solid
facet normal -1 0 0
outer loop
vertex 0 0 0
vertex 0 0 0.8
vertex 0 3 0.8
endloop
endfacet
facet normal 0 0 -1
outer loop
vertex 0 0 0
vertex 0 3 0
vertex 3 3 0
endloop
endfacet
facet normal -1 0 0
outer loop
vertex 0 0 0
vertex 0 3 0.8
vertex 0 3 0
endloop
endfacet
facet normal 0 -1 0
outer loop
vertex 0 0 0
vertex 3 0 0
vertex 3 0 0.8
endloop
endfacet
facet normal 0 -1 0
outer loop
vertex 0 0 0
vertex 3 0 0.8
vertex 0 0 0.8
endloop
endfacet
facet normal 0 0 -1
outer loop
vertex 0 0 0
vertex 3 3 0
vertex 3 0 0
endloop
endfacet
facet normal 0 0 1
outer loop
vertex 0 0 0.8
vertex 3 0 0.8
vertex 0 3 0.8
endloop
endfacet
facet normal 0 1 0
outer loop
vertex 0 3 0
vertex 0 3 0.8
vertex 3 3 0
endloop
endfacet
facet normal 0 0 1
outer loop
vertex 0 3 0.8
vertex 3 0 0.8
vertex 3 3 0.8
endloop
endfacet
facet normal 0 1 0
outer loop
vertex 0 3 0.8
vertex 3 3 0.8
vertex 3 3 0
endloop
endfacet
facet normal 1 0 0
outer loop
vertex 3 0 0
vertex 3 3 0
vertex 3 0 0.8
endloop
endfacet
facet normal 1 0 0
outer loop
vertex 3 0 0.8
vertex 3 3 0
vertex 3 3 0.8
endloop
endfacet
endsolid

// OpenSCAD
/* Warning, this is a very basic generator with a lot of approximation 
input data : [TDFN, QAX, 3x3x0.8mm, 10, , A, C04-00185A]
generated by com.zoubworld.electronics.cad.model3d.Basic
Date : Sun Feb 15 10:50:48 CET 2026
*/

//body
color("black")
translate([0,0,0])
cube([3.0,3.0,0.8], center=false);
